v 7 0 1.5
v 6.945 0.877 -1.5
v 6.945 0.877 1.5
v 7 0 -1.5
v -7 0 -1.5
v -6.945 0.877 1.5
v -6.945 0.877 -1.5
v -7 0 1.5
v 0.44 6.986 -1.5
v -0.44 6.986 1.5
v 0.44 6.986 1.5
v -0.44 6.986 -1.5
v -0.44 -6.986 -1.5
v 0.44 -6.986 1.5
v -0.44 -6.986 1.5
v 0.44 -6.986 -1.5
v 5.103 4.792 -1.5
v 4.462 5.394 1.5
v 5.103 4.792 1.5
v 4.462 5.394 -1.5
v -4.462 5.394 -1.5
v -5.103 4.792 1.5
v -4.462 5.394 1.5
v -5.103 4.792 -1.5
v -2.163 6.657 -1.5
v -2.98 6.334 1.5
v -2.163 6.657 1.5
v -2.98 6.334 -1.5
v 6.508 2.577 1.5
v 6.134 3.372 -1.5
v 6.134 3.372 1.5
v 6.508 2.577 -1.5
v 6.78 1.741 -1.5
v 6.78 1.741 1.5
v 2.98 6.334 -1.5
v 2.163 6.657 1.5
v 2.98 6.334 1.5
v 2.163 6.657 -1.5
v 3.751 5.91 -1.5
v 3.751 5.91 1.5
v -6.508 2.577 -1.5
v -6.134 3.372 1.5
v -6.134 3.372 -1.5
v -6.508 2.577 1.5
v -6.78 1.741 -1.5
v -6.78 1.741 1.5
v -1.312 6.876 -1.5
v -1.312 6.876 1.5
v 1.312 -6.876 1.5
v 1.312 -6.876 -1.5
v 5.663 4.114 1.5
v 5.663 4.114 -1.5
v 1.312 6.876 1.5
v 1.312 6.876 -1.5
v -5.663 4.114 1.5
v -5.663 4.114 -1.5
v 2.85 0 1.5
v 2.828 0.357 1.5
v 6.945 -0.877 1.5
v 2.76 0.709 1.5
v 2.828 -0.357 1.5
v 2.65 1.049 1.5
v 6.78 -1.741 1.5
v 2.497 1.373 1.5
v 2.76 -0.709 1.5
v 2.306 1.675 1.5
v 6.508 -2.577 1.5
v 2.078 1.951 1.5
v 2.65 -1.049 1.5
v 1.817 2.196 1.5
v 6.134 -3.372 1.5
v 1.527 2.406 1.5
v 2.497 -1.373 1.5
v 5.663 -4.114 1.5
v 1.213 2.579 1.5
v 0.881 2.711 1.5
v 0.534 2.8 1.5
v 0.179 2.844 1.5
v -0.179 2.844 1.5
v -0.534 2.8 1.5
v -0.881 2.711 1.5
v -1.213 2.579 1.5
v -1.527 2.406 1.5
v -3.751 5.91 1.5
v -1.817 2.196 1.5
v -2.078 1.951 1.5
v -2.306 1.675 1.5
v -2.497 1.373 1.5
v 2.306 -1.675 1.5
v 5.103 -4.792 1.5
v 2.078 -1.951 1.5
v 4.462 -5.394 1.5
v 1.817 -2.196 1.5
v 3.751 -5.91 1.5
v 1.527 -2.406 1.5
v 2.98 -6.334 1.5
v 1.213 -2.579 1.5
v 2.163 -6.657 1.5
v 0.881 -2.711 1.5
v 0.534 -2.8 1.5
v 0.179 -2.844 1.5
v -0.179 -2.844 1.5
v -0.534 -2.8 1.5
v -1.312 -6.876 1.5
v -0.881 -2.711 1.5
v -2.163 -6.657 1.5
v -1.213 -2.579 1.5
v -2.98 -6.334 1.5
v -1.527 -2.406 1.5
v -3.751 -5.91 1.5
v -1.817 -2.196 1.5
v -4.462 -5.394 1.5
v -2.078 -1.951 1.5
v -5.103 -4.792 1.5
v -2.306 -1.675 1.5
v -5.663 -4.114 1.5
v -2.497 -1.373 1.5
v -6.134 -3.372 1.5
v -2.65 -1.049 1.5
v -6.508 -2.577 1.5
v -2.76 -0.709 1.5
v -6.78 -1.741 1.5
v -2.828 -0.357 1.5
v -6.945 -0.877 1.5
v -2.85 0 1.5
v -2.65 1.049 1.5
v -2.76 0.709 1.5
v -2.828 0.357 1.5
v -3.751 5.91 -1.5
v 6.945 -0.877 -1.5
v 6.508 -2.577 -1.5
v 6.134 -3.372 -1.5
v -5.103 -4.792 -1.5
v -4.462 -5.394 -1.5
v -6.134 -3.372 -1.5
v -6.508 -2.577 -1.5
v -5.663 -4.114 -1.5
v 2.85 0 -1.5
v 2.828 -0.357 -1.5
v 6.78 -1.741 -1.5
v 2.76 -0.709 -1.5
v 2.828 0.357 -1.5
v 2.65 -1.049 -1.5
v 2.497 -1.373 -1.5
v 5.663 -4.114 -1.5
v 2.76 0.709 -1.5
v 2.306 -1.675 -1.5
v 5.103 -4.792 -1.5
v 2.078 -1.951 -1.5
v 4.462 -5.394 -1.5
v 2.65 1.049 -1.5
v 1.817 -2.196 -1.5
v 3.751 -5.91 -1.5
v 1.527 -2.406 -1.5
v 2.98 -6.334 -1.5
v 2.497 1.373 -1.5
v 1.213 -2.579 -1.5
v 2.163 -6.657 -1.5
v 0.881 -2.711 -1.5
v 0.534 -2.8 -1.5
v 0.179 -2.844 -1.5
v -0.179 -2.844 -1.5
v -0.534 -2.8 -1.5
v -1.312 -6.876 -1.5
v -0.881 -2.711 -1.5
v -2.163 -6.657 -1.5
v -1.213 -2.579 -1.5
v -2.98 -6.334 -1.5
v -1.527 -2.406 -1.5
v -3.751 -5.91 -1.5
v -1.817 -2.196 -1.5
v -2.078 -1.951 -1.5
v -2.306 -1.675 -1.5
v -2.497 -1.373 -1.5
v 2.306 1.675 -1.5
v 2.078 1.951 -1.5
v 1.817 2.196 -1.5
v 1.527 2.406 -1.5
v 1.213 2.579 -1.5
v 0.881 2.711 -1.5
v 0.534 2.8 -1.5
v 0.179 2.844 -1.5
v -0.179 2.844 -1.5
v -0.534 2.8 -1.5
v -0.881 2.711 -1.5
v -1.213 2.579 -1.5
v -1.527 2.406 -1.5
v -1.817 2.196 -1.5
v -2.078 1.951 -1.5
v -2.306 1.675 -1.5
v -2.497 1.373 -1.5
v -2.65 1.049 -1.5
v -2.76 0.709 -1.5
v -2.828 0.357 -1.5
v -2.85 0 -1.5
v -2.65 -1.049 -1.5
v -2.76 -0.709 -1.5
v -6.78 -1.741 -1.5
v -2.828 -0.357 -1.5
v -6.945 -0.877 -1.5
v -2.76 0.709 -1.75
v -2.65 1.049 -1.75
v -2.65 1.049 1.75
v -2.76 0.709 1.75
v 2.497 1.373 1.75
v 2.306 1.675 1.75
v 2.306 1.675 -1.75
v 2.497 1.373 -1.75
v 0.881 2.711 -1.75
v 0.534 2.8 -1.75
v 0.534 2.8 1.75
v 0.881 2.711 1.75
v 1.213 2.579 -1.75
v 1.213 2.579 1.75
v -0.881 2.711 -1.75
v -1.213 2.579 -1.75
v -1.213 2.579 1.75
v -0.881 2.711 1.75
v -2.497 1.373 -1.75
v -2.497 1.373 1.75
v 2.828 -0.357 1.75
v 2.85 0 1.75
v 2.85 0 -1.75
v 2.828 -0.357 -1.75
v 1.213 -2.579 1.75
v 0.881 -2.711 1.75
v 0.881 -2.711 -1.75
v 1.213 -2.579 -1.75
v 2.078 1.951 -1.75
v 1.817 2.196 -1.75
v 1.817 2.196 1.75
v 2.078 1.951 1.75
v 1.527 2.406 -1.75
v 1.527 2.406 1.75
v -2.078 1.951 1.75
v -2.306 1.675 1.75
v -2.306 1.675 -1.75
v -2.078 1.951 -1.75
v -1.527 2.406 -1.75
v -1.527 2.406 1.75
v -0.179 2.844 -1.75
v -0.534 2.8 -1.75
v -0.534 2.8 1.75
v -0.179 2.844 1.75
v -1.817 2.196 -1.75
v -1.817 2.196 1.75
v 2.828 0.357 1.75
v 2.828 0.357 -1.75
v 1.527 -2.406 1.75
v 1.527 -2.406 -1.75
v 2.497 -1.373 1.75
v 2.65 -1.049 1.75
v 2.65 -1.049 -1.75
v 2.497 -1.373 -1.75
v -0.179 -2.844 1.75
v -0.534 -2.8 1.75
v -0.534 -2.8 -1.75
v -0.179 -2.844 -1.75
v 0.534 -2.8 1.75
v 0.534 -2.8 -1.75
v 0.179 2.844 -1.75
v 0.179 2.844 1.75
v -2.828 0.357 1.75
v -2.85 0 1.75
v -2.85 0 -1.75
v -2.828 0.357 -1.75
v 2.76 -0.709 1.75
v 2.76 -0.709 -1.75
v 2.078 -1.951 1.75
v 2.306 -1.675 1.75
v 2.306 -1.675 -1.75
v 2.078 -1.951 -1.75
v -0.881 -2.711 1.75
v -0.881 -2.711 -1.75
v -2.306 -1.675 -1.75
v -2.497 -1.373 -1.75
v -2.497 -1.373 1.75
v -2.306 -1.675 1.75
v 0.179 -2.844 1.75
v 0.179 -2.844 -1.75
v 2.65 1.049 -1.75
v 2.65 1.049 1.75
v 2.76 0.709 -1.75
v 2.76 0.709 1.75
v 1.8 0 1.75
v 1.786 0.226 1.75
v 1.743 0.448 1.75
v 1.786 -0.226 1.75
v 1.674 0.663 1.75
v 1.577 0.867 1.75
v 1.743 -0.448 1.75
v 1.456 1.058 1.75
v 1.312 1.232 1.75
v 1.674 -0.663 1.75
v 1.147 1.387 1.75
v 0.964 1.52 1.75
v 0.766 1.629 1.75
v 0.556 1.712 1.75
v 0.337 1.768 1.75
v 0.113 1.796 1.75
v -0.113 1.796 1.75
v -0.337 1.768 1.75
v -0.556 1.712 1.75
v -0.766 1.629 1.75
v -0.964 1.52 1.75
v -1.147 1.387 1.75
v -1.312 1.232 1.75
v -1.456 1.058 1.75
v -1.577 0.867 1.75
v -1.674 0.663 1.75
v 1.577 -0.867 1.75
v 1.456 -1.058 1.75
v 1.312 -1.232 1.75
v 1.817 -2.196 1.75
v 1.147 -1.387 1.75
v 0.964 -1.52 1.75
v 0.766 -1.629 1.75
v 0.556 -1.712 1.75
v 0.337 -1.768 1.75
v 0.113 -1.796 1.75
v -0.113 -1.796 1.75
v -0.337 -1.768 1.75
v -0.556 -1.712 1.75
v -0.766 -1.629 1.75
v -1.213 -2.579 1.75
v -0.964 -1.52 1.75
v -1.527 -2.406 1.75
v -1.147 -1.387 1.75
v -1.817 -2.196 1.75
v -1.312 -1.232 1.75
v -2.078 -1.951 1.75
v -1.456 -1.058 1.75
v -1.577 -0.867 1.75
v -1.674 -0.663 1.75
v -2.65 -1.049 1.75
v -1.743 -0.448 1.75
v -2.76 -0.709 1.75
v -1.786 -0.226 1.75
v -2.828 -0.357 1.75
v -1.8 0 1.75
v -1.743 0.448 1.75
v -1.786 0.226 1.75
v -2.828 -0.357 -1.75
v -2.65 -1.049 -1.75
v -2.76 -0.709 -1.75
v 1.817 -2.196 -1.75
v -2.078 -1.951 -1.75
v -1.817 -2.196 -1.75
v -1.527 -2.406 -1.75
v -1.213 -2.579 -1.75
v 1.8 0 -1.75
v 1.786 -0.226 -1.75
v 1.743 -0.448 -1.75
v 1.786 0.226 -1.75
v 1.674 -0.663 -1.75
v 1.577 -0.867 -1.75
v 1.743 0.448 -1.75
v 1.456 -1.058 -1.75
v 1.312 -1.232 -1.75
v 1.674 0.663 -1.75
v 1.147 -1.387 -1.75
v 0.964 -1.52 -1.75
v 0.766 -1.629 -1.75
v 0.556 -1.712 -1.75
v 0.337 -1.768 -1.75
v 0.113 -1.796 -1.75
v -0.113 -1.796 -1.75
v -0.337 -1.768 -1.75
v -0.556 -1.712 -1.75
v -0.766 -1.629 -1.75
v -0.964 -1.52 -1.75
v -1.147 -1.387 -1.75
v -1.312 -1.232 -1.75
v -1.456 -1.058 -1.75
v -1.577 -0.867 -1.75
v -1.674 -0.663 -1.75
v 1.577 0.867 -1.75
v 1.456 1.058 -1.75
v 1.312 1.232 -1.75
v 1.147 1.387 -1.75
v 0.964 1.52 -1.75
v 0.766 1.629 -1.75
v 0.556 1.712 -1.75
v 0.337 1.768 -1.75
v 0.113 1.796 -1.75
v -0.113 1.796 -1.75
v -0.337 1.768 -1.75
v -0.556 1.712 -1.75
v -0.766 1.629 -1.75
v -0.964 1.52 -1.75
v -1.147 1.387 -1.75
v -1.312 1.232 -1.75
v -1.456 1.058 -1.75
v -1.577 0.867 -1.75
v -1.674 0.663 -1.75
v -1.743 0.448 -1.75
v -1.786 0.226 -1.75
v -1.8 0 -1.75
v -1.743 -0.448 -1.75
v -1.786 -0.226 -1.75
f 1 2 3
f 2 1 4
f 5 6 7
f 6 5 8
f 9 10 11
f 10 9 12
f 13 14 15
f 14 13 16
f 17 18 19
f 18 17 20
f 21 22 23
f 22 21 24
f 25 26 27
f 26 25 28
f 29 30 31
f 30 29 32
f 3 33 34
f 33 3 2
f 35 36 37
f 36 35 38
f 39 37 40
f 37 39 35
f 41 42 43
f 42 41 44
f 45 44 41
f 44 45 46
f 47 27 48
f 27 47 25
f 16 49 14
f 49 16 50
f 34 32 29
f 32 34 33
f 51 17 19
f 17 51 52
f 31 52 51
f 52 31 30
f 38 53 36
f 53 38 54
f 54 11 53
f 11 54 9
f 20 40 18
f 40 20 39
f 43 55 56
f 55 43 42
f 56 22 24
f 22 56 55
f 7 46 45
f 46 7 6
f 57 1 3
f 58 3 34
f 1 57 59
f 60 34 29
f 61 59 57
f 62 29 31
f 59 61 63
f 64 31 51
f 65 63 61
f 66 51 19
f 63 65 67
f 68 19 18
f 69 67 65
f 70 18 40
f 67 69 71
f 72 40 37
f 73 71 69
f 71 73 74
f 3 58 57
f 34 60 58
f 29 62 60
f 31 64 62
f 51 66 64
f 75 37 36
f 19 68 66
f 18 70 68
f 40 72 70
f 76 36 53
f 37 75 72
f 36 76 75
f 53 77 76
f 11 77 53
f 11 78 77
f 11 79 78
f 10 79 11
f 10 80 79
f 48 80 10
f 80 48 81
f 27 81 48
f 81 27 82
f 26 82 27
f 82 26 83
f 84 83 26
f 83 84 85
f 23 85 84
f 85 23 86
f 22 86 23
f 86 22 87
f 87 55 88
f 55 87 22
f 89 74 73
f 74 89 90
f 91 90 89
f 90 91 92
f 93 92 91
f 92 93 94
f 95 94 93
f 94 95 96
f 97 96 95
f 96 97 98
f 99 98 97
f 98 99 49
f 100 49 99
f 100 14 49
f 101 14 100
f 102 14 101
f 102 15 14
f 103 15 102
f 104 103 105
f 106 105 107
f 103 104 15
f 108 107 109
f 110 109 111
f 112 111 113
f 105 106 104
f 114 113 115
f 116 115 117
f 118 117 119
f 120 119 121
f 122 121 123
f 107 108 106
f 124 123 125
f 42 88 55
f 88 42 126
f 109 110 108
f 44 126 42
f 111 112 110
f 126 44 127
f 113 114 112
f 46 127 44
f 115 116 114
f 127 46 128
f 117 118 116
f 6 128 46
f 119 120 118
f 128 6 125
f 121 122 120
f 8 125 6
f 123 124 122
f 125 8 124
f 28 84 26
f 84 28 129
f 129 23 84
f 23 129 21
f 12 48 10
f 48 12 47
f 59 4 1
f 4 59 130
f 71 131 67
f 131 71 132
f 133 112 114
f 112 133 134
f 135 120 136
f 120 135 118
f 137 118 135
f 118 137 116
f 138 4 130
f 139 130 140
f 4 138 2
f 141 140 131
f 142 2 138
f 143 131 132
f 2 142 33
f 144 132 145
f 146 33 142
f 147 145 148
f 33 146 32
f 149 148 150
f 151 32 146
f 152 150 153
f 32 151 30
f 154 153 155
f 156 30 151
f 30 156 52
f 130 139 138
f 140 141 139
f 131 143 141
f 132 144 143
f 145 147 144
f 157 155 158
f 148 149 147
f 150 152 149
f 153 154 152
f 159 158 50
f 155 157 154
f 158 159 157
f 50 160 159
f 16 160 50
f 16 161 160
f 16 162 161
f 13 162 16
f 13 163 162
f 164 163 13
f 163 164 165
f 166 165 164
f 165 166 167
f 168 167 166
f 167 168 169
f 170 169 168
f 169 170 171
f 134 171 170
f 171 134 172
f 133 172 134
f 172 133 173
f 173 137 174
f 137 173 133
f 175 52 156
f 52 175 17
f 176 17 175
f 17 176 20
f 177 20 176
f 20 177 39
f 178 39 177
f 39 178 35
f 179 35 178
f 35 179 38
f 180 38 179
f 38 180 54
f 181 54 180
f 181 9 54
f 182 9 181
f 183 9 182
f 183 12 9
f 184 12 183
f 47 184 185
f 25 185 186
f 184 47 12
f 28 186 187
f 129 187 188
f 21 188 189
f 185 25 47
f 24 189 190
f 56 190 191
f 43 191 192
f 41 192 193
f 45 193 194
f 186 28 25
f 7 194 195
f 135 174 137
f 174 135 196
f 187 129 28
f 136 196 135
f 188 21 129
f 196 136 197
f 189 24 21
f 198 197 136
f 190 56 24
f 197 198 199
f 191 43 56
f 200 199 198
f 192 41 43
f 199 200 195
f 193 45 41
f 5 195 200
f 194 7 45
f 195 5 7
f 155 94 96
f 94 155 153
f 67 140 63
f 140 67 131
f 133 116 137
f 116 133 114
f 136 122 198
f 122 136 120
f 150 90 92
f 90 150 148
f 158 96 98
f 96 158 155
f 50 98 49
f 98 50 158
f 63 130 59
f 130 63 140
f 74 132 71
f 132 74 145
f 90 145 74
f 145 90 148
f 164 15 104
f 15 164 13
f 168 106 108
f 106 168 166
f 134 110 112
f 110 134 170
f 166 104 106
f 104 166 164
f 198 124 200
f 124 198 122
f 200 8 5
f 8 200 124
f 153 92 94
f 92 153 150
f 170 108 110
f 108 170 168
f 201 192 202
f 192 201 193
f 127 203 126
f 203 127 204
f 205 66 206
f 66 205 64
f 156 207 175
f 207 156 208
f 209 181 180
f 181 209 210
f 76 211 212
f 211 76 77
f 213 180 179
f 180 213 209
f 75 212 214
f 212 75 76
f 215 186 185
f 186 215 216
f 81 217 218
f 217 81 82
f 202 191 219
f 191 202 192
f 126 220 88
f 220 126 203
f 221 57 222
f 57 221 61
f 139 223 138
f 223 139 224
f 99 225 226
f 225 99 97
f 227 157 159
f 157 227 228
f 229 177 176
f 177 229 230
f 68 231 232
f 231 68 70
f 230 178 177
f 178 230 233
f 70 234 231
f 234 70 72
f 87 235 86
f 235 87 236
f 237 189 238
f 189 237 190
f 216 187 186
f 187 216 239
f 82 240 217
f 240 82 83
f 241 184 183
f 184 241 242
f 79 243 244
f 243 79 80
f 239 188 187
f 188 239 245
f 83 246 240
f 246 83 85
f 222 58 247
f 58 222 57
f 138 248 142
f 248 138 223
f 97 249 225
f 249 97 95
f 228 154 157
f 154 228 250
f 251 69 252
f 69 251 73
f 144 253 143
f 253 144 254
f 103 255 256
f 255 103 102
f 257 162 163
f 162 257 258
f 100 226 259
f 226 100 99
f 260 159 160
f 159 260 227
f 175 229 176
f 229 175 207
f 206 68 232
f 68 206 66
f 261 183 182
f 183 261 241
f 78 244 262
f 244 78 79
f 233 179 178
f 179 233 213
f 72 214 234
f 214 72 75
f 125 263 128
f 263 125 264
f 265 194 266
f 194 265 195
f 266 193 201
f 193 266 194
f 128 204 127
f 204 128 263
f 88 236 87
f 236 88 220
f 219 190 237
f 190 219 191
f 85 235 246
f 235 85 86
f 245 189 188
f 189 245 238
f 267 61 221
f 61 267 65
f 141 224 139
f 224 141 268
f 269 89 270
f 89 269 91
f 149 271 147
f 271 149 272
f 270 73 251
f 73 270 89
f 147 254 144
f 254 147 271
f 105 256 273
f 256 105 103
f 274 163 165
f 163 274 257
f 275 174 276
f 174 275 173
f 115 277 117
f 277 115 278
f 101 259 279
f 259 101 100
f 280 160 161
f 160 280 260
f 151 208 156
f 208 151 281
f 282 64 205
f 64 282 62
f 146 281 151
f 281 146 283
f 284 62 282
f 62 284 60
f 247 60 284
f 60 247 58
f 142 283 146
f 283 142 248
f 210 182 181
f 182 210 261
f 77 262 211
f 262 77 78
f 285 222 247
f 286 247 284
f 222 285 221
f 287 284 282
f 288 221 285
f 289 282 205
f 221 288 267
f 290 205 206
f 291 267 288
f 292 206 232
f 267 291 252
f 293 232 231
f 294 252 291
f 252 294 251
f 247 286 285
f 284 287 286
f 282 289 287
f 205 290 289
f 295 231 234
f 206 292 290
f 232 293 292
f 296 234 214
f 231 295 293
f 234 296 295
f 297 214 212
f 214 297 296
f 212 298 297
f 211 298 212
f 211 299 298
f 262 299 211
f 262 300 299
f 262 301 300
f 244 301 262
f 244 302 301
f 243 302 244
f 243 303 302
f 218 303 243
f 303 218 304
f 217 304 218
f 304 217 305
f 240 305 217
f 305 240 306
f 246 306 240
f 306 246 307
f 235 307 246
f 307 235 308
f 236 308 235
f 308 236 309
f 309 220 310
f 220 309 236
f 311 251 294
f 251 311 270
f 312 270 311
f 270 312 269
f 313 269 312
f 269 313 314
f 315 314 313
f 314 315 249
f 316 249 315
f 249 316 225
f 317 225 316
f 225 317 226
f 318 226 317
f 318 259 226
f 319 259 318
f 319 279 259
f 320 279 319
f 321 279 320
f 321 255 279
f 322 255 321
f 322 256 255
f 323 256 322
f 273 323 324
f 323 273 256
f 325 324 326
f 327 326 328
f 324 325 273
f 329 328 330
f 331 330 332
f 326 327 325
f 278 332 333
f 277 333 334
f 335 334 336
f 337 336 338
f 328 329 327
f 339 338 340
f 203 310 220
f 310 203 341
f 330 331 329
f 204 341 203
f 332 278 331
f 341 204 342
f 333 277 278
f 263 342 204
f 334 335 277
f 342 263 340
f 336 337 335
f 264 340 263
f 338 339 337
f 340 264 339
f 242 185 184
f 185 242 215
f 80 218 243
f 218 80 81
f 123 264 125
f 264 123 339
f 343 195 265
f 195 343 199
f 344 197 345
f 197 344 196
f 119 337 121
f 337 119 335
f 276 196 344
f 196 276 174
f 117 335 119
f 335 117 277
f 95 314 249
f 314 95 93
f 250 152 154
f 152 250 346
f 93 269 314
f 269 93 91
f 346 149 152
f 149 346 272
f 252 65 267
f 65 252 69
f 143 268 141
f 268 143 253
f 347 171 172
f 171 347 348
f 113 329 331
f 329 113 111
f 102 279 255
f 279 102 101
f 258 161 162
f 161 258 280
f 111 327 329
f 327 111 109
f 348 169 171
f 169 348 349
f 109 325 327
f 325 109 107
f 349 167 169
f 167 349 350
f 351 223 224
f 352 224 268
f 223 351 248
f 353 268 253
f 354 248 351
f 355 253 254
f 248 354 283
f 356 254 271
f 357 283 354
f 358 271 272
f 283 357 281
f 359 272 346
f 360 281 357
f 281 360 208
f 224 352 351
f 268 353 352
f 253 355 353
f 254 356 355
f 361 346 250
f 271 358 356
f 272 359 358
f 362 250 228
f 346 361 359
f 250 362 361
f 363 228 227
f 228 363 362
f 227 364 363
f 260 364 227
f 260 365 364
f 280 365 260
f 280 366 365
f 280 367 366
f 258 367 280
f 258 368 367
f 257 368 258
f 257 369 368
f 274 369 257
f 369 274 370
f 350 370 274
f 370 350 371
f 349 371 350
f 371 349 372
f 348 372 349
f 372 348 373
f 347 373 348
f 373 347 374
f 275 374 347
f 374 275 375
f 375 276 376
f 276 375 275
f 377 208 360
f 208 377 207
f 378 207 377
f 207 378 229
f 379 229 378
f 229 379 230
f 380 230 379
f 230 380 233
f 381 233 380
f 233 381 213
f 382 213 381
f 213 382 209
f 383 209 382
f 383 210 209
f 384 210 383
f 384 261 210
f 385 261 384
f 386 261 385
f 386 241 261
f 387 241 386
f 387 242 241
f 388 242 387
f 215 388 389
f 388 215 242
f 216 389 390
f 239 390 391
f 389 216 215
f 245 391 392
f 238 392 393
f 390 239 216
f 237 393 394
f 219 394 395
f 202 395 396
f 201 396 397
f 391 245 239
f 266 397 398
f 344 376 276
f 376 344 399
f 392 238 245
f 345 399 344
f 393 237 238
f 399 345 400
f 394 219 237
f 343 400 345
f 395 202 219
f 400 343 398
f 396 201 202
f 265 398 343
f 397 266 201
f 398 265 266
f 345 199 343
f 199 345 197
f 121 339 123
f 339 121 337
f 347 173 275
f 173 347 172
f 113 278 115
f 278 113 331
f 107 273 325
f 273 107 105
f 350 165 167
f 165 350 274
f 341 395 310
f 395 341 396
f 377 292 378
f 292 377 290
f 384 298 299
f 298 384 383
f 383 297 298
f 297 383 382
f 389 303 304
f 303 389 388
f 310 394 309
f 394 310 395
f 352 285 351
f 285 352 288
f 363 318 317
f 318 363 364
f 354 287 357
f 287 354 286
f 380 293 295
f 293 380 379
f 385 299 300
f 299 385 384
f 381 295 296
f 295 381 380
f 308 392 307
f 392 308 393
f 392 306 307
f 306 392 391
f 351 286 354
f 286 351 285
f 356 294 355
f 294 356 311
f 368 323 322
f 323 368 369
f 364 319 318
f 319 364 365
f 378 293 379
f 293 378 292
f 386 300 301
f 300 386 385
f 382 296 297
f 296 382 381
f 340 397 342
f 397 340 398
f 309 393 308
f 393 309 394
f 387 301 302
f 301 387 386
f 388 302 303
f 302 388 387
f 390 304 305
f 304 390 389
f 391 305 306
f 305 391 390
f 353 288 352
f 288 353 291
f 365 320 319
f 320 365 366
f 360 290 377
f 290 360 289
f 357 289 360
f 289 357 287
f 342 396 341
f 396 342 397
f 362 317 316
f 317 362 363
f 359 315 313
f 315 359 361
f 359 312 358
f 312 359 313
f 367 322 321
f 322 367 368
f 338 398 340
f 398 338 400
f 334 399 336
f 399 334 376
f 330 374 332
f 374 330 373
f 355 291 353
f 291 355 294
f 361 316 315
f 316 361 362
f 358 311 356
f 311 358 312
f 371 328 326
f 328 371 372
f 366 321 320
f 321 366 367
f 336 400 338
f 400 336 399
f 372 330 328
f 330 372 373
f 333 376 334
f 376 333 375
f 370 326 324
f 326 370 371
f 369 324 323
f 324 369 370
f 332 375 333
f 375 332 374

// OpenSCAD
$fn = 50;


difference() {
	union() {
		translate(v = [0, 0, -1.5000000000]) {
			rotate(a = [0, 0, 0]) {
				cylinder(h = 3, r = 7.0000000000);
			}
		}
		translate(v = [0, 0, -1.7500000000]) {
			rotate(a = [0, 0, 0]) {
				cylinder(h = 3.5000000000, r = 2.8500000000);
			}
		}
	}
	union() {
		translate(v = [0, 0, -125.0000000000]) {
			rotate(a = [0, 0, 0]) {
				cylinder(h = 250, r = 1.8000000000);
			}
		}
	}
}
